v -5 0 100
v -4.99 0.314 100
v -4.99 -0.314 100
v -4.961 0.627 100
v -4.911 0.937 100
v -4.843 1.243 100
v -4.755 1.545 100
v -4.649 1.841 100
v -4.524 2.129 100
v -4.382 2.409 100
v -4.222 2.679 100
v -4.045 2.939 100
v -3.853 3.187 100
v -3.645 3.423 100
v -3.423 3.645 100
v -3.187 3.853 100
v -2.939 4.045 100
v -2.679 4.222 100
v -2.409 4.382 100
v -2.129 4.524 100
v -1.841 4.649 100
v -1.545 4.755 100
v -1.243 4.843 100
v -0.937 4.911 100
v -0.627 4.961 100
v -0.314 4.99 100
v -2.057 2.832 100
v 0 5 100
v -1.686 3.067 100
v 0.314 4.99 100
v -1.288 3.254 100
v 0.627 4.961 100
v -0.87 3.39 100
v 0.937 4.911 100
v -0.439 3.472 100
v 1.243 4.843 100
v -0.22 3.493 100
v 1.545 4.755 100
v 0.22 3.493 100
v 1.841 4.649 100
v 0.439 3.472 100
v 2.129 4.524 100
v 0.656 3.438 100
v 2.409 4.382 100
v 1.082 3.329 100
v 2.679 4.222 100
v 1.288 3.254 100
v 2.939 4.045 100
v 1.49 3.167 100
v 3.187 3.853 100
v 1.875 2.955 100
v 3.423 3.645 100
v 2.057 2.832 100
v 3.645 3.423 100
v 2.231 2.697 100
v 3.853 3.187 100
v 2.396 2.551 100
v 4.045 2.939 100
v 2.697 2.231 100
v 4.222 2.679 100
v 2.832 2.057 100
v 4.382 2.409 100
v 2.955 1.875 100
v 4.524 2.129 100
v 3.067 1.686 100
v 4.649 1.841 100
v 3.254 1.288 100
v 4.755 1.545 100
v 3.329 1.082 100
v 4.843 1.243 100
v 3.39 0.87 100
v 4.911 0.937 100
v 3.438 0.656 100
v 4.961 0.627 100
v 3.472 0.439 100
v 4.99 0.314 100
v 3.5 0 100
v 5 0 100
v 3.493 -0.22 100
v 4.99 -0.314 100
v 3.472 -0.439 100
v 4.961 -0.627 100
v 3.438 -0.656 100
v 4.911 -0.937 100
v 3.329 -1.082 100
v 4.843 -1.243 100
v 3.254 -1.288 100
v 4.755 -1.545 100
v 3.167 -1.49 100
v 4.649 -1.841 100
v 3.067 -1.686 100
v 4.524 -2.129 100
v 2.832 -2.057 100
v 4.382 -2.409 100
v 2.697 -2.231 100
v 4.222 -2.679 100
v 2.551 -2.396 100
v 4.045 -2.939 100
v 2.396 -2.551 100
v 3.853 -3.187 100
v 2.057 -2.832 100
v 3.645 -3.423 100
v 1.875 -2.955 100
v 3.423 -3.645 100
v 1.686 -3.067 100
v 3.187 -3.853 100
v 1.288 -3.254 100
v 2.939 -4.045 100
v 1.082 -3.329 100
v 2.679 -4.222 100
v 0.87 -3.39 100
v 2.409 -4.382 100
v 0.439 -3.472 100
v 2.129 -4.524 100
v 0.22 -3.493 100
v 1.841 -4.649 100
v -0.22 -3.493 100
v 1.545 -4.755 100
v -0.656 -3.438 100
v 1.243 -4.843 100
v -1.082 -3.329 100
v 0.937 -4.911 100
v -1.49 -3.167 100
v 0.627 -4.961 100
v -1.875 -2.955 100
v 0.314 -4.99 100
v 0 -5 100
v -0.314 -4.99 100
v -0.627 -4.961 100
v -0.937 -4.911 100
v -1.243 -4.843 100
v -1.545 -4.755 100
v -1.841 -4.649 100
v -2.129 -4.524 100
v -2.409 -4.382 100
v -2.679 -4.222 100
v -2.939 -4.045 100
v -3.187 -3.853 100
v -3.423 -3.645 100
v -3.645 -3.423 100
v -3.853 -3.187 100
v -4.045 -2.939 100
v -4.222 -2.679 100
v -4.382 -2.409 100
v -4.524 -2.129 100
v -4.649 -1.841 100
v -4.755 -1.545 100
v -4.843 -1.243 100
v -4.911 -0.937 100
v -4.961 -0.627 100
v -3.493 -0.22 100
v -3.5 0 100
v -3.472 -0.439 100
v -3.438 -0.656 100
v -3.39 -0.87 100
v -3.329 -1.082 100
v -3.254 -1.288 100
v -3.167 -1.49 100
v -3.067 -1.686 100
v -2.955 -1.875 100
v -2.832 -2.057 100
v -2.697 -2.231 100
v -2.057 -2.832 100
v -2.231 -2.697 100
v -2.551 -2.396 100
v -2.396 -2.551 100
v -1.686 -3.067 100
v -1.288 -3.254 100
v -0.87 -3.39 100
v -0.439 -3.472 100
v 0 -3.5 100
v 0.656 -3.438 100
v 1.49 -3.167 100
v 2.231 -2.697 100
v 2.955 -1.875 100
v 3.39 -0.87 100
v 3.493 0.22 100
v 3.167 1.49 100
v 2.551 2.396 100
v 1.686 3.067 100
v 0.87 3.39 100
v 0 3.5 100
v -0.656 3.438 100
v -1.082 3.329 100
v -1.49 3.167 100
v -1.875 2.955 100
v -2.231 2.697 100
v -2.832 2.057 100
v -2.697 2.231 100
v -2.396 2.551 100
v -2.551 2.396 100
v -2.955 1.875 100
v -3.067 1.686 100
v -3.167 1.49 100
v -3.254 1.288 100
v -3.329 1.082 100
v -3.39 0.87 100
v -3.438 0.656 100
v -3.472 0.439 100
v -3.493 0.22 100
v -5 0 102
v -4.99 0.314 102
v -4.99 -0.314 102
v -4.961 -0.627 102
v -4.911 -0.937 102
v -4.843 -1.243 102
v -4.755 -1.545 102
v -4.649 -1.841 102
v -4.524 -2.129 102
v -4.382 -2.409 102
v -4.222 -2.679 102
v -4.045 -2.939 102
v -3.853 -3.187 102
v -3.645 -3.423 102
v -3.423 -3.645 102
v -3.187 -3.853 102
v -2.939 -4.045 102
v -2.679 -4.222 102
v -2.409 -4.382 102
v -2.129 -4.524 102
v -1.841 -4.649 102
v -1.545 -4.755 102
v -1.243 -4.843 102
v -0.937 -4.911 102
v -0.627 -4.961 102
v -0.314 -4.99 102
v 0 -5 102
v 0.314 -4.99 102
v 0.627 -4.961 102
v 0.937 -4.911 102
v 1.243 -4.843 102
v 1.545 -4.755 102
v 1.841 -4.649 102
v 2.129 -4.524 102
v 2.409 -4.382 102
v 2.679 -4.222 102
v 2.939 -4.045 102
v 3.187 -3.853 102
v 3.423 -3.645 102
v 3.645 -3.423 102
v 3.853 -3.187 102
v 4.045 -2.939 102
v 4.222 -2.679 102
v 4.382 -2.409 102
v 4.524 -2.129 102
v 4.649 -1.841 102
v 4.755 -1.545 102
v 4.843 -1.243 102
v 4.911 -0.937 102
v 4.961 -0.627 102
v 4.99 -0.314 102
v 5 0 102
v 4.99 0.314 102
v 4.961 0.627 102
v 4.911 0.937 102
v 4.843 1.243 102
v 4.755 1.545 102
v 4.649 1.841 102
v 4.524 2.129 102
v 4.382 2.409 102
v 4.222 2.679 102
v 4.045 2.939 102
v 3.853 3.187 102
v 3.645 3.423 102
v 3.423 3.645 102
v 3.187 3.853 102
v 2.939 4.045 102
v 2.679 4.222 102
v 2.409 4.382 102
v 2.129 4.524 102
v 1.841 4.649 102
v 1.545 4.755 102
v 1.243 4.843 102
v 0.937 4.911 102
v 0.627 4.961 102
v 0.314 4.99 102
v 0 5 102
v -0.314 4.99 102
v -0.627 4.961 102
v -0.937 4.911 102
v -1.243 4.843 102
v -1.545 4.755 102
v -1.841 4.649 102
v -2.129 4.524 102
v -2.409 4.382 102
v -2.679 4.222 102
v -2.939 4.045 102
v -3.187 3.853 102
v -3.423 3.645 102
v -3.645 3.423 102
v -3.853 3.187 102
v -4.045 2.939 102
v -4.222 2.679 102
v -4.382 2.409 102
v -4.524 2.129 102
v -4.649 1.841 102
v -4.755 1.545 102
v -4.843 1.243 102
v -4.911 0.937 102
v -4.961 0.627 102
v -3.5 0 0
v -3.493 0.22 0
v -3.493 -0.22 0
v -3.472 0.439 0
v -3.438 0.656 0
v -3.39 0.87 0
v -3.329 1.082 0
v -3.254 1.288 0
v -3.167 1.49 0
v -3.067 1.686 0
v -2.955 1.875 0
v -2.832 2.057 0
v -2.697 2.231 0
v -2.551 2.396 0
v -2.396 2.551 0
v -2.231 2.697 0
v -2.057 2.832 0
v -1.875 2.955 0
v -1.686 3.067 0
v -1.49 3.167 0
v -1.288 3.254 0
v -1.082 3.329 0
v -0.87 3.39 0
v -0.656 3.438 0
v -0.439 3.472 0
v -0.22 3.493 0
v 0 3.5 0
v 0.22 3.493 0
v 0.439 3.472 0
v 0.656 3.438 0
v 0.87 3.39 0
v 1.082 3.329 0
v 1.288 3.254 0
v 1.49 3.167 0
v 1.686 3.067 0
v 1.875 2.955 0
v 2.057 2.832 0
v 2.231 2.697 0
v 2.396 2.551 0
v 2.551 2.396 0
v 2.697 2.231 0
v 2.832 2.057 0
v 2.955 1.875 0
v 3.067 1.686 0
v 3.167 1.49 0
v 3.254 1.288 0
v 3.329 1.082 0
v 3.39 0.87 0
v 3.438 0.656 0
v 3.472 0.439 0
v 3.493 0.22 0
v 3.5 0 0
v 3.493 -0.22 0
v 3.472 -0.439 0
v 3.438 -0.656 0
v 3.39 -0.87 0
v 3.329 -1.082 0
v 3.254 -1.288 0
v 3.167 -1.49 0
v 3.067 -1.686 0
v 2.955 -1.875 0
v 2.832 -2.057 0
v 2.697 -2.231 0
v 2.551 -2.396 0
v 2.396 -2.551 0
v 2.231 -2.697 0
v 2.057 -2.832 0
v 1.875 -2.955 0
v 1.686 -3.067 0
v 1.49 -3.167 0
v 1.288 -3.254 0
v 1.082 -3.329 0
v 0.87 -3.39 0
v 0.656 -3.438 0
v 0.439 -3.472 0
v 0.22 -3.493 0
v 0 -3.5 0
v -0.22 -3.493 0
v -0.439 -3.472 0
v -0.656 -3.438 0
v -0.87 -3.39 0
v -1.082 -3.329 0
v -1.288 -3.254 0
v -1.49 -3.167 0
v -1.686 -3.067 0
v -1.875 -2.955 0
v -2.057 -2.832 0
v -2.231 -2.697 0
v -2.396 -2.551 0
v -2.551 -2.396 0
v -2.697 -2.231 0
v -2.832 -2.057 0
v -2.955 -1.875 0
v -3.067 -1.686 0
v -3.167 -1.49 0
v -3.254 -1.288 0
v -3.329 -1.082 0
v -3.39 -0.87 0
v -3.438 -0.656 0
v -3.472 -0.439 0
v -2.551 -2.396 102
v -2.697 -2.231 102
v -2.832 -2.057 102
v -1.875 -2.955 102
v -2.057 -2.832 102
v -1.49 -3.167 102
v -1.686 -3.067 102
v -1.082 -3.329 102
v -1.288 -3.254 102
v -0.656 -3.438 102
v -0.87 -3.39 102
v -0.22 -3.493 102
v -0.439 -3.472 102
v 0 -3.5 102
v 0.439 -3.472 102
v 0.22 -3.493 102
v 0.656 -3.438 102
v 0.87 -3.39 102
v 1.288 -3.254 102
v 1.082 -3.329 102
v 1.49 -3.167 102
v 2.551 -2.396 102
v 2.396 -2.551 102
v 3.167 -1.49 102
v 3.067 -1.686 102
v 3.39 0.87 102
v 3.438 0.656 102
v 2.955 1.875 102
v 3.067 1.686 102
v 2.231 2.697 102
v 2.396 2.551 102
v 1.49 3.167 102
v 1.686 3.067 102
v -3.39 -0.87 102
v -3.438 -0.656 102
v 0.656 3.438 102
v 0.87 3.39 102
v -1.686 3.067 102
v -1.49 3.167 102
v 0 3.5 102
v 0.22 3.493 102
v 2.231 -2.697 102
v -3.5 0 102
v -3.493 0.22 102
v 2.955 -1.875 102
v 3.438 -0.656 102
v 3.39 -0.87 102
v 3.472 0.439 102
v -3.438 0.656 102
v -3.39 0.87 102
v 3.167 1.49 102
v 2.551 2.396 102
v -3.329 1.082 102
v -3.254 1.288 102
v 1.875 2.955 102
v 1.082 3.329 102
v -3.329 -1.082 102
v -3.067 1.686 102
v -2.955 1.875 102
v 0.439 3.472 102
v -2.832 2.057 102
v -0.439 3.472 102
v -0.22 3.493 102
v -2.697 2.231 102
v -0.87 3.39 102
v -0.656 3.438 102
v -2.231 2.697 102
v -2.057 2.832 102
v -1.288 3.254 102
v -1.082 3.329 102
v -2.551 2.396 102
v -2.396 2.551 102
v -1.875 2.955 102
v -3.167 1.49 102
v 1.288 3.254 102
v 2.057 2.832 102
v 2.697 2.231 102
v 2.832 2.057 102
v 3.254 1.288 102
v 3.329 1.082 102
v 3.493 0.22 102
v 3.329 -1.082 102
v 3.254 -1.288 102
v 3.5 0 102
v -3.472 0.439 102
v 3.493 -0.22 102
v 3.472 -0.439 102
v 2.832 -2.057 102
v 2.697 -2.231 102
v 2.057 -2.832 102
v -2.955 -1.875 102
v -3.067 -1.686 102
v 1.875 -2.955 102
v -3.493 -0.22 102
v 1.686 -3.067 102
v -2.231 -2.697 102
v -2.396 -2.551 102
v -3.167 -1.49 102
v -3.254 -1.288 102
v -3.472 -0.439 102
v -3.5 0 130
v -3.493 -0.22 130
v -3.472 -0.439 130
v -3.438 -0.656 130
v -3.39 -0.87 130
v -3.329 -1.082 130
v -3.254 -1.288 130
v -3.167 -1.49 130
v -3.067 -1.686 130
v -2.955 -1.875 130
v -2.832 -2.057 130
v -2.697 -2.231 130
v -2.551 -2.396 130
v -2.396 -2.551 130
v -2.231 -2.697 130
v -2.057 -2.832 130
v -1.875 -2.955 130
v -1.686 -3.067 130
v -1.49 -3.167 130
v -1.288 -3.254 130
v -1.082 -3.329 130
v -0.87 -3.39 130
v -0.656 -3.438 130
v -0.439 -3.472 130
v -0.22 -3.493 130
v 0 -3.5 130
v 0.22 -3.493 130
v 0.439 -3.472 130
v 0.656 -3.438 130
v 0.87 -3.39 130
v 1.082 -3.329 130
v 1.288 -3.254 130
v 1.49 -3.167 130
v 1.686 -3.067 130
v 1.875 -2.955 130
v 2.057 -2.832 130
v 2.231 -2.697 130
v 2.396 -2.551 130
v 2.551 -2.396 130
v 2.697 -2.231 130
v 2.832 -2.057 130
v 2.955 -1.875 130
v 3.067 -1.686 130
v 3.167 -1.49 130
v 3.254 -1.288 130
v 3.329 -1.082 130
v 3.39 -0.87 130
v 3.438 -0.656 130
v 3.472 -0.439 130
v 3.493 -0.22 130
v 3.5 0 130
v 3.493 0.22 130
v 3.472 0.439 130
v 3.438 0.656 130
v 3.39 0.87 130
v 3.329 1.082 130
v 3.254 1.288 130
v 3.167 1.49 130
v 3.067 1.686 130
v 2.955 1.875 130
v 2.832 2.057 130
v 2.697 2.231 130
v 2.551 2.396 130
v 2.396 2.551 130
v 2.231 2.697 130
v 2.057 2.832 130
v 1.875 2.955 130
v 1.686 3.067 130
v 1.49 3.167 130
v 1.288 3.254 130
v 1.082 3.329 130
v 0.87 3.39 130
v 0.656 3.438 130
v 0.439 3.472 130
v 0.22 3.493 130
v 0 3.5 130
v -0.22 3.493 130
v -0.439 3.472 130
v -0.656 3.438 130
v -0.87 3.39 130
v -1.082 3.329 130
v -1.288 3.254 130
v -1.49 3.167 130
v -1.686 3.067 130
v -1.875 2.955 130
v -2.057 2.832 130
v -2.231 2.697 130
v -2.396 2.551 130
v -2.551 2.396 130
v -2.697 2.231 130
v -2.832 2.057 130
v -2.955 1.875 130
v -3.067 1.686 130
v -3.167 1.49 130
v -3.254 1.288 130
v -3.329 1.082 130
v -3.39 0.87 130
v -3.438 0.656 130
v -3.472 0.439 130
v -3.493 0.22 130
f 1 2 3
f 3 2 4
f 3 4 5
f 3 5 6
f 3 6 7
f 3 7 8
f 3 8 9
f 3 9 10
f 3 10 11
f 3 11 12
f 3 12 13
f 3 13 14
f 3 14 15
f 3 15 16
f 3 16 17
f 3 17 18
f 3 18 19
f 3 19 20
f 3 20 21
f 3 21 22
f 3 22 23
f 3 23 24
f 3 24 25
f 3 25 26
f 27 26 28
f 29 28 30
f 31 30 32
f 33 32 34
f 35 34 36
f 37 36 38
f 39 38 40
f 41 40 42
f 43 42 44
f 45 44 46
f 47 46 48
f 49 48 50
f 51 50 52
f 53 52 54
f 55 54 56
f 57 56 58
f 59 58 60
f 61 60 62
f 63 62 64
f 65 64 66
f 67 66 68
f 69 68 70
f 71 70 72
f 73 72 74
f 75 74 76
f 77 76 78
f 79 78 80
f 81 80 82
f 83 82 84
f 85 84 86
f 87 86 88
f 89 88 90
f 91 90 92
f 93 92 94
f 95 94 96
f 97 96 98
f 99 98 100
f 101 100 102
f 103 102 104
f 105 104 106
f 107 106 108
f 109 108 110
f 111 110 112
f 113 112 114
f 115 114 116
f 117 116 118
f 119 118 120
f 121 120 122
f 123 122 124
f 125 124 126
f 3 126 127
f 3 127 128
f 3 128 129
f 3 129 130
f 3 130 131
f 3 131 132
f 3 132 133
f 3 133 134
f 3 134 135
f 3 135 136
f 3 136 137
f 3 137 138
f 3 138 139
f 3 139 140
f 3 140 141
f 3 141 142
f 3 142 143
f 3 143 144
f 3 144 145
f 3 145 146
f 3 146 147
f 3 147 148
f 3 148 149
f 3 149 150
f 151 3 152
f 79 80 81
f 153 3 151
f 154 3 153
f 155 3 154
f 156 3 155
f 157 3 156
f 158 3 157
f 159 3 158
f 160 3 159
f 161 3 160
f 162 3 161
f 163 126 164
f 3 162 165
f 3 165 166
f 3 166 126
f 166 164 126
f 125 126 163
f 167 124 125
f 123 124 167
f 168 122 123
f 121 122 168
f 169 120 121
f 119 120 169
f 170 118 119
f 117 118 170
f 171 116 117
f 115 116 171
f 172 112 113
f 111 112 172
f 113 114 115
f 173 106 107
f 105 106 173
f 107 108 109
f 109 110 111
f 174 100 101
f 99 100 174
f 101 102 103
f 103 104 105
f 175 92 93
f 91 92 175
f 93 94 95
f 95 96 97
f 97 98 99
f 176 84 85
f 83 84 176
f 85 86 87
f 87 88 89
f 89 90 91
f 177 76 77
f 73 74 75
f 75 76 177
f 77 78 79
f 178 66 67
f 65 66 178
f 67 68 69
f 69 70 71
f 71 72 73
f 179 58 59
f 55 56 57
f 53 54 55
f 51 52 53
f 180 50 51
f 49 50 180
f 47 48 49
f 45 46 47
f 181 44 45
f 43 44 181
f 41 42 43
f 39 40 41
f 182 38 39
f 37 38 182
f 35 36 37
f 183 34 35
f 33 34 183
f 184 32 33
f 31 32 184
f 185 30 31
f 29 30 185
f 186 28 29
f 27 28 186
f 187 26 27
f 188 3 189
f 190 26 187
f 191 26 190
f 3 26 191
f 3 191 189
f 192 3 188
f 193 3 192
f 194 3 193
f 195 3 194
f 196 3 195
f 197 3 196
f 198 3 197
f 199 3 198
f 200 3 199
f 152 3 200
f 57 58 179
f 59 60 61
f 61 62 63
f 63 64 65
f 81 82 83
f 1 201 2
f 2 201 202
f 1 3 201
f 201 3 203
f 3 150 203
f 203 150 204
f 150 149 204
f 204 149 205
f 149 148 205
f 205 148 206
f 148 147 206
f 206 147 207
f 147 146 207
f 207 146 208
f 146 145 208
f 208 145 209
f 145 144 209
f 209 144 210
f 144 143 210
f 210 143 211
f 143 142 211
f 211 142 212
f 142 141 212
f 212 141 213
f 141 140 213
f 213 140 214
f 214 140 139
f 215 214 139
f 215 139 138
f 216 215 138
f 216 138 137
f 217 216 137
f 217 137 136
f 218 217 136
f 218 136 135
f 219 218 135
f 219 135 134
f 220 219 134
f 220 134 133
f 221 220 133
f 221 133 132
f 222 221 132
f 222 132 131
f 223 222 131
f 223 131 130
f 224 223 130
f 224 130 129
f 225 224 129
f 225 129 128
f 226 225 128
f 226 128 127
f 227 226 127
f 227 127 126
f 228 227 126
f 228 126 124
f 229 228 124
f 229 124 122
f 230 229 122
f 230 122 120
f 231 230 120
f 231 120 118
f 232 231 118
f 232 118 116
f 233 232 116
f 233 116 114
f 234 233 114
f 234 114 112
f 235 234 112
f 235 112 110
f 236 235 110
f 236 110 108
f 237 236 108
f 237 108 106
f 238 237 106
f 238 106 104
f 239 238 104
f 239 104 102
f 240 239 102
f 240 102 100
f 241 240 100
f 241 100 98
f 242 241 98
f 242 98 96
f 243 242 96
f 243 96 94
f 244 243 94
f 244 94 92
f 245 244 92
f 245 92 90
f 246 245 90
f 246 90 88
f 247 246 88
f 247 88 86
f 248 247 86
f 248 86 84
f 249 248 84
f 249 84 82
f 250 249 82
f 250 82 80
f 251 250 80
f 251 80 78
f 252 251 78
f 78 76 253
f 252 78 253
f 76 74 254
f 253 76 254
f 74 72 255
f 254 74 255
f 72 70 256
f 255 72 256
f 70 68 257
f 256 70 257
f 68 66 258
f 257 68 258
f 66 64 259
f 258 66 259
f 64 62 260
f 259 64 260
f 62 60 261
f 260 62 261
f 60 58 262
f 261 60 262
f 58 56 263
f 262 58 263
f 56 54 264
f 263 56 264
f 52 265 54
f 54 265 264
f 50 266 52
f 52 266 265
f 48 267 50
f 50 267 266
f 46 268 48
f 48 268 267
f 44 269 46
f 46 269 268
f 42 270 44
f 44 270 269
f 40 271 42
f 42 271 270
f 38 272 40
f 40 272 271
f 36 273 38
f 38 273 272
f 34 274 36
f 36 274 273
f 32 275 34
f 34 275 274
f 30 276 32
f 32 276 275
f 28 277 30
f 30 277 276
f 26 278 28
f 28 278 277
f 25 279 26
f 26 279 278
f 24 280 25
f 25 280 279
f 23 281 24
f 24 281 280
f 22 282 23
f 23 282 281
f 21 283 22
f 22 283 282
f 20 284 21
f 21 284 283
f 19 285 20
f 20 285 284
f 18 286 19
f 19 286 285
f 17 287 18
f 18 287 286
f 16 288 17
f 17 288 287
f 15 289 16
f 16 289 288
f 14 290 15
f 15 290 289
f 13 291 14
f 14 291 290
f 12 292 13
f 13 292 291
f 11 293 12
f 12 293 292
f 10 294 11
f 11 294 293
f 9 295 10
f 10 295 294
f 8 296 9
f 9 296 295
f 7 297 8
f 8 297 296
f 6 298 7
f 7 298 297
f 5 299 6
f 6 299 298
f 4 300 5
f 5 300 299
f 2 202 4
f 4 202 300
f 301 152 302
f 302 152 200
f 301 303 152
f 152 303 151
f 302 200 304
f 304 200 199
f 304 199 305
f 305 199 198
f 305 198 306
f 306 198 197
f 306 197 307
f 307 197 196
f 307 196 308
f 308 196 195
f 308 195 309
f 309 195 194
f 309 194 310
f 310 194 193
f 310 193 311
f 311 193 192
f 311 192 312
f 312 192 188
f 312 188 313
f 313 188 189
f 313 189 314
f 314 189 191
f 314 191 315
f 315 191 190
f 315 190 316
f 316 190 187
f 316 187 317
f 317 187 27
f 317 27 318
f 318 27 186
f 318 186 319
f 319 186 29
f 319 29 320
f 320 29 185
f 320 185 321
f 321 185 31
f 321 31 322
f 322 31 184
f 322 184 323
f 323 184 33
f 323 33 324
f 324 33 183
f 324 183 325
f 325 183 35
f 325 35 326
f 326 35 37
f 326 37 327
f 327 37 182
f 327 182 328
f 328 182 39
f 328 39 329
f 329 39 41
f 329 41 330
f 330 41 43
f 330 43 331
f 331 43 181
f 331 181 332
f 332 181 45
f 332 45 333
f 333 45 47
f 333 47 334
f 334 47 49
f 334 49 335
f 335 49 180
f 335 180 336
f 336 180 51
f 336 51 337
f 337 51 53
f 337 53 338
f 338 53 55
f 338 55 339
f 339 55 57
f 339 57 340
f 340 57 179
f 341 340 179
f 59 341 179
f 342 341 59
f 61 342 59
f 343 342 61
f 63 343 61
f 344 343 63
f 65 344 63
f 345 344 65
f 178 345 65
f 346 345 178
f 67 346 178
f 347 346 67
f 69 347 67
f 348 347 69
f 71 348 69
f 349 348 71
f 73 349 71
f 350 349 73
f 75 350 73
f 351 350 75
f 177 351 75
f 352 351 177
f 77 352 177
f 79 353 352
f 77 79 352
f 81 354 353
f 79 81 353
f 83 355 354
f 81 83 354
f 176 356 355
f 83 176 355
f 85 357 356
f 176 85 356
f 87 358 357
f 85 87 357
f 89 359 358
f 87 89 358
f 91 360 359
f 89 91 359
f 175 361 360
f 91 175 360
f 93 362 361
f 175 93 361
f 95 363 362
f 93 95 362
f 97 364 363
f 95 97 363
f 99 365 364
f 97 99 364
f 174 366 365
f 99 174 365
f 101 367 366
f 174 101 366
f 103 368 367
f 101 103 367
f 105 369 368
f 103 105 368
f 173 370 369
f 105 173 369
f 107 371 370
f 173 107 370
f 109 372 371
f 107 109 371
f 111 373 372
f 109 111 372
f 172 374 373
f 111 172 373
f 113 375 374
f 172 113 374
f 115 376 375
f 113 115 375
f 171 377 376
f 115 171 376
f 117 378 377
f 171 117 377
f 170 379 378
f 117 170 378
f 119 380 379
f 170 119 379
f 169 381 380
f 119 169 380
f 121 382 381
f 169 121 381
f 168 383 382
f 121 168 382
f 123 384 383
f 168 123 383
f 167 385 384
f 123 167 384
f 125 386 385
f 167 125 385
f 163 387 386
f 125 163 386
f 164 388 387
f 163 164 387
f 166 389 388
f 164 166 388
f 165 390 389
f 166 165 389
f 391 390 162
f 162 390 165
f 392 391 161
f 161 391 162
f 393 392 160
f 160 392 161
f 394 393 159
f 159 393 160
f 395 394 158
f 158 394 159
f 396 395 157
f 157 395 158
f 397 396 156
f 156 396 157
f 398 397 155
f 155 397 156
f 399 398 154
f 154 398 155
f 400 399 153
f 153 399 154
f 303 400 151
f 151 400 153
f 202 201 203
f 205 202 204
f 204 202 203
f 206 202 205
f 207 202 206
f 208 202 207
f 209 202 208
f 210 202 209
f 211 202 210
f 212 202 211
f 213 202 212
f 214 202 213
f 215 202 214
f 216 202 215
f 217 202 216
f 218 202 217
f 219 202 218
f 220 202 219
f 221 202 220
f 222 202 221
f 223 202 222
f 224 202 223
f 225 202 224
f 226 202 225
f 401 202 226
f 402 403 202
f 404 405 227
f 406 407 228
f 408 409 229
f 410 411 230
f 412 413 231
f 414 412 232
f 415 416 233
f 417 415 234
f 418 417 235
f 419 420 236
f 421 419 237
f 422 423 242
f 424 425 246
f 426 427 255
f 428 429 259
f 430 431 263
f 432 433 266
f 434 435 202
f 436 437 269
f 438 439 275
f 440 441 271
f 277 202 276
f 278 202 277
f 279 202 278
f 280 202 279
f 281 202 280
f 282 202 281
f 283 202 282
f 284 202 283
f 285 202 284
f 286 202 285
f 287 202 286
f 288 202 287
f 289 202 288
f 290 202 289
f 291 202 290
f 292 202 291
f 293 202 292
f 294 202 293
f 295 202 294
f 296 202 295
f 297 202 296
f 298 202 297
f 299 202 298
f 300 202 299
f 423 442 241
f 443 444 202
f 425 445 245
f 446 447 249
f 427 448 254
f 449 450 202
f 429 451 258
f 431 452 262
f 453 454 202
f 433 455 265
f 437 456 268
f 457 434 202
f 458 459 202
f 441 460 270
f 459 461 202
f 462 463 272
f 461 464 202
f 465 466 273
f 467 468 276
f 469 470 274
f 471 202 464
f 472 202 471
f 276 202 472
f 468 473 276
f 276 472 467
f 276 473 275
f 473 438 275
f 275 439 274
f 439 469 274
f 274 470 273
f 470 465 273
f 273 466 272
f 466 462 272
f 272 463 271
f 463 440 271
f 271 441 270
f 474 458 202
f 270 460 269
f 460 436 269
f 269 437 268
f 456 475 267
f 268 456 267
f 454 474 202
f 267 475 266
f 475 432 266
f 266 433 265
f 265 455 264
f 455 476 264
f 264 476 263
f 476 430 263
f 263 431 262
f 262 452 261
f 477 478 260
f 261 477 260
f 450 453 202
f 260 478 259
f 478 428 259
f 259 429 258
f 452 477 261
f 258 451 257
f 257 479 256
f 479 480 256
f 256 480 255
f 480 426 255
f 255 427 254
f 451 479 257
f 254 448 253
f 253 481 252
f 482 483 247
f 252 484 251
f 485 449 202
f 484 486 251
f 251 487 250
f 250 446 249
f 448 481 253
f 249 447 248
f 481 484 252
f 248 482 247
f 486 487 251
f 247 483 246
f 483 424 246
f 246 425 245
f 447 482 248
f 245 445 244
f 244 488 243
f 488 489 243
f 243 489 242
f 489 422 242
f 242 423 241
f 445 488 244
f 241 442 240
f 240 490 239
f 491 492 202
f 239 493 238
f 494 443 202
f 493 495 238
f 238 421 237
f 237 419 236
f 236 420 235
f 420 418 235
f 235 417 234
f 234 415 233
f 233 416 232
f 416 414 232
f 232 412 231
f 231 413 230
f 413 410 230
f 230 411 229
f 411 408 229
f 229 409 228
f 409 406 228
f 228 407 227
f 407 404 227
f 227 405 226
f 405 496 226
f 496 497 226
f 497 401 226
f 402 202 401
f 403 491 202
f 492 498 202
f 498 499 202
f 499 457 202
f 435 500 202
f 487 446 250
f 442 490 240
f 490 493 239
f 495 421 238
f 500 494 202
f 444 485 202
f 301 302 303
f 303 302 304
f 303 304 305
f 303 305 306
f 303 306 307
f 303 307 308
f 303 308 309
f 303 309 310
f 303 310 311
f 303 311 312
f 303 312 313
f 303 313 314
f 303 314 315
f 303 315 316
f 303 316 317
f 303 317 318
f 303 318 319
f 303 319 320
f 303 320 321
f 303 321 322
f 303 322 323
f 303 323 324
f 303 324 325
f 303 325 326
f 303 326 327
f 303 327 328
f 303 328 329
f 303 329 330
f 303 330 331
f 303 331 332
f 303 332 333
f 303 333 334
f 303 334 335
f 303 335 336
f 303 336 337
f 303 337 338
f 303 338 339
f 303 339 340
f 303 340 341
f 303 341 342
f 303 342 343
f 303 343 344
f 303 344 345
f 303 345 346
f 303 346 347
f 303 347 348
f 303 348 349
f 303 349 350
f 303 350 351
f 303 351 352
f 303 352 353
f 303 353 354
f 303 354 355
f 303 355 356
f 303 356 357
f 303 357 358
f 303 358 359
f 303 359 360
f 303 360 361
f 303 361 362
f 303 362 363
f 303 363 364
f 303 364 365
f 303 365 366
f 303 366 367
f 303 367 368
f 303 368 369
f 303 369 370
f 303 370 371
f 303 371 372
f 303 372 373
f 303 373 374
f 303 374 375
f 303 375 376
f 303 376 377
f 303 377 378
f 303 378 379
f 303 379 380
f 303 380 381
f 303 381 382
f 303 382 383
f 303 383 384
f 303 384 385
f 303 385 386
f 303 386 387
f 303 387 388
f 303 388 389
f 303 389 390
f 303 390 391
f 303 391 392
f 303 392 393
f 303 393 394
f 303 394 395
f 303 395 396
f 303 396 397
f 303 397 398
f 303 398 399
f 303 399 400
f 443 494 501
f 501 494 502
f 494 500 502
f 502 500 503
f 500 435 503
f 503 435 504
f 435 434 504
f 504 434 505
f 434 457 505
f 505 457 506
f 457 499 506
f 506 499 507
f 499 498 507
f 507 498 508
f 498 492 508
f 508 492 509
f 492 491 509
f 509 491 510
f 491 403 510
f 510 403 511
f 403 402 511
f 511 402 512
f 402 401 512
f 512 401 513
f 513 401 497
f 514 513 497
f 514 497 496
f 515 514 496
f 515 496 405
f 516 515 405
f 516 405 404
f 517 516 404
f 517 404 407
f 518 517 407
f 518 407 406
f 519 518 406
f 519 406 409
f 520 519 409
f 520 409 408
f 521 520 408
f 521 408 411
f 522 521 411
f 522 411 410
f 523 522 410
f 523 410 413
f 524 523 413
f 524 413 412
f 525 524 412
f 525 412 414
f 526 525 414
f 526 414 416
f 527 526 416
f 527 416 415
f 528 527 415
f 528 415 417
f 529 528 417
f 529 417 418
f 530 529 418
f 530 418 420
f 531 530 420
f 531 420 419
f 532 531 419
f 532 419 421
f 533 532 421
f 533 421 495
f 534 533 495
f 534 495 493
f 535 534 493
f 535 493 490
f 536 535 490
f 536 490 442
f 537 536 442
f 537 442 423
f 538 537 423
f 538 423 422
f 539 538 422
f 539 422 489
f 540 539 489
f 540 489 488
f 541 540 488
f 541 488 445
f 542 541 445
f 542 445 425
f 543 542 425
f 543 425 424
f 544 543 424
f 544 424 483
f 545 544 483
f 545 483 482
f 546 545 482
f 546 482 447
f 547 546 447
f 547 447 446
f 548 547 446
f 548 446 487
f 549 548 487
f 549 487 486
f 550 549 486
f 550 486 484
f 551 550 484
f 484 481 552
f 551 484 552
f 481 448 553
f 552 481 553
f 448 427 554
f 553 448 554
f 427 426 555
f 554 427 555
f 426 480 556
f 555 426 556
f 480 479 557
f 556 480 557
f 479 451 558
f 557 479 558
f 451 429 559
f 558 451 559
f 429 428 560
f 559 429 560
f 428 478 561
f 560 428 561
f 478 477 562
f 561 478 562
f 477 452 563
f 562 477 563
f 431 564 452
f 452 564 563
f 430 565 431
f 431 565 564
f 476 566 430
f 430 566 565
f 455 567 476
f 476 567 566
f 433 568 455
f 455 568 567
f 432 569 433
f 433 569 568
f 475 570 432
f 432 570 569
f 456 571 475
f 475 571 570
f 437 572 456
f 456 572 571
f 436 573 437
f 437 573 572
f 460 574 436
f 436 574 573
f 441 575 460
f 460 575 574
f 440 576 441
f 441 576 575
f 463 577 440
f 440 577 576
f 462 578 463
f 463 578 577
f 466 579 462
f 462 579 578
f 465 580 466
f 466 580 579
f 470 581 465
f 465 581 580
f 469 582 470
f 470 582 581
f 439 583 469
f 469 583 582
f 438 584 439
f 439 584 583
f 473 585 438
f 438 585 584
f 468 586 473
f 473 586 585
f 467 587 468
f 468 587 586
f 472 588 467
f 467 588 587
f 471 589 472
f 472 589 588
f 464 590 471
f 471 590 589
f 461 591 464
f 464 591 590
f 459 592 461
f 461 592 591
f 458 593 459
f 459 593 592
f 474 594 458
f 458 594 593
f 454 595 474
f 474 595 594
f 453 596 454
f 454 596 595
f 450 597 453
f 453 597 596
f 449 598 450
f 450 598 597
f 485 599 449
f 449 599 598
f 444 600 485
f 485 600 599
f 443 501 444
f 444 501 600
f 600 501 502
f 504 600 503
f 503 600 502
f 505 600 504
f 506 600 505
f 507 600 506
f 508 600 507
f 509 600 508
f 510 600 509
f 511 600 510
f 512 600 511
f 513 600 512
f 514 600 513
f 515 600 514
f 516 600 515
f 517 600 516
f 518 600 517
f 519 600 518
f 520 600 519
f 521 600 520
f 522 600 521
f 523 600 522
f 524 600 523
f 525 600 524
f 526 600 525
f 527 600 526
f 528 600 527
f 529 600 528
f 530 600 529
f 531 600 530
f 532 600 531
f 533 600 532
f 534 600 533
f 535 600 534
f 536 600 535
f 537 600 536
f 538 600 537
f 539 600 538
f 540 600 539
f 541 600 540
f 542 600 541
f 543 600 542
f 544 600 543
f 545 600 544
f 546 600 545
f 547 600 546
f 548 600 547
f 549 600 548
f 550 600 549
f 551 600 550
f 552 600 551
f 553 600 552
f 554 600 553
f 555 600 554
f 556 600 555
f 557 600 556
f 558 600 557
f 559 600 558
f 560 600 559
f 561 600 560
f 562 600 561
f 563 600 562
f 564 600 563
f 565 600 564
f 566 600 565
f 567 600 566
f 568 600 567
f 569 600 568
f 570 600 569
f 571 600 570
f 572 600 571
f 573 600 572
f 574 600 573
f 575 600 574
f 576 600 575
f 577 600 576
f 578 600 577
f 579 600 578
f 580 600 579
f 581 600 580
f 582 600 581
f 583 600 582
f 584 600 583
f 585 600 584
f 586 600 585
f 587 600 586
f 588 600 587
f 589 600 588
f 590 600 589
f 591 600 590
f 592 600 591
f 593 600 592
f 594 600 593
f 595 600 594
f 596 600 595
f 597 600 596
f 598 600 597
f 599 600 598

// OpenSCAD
height=130;
diameter=7;

holder_height=2;
holder_diameter=10;
holder_offset=height-30;


/* [Hidden] */
circle_points=100;


// main cylinder
cylinder(h=height,r=diameter/2,$fn=circle_points);

// holder
translate([0,0,holder_offset]){
 cylinder(h=holder_height,r=holder_diameter/2,$fn=circle_points);
}
